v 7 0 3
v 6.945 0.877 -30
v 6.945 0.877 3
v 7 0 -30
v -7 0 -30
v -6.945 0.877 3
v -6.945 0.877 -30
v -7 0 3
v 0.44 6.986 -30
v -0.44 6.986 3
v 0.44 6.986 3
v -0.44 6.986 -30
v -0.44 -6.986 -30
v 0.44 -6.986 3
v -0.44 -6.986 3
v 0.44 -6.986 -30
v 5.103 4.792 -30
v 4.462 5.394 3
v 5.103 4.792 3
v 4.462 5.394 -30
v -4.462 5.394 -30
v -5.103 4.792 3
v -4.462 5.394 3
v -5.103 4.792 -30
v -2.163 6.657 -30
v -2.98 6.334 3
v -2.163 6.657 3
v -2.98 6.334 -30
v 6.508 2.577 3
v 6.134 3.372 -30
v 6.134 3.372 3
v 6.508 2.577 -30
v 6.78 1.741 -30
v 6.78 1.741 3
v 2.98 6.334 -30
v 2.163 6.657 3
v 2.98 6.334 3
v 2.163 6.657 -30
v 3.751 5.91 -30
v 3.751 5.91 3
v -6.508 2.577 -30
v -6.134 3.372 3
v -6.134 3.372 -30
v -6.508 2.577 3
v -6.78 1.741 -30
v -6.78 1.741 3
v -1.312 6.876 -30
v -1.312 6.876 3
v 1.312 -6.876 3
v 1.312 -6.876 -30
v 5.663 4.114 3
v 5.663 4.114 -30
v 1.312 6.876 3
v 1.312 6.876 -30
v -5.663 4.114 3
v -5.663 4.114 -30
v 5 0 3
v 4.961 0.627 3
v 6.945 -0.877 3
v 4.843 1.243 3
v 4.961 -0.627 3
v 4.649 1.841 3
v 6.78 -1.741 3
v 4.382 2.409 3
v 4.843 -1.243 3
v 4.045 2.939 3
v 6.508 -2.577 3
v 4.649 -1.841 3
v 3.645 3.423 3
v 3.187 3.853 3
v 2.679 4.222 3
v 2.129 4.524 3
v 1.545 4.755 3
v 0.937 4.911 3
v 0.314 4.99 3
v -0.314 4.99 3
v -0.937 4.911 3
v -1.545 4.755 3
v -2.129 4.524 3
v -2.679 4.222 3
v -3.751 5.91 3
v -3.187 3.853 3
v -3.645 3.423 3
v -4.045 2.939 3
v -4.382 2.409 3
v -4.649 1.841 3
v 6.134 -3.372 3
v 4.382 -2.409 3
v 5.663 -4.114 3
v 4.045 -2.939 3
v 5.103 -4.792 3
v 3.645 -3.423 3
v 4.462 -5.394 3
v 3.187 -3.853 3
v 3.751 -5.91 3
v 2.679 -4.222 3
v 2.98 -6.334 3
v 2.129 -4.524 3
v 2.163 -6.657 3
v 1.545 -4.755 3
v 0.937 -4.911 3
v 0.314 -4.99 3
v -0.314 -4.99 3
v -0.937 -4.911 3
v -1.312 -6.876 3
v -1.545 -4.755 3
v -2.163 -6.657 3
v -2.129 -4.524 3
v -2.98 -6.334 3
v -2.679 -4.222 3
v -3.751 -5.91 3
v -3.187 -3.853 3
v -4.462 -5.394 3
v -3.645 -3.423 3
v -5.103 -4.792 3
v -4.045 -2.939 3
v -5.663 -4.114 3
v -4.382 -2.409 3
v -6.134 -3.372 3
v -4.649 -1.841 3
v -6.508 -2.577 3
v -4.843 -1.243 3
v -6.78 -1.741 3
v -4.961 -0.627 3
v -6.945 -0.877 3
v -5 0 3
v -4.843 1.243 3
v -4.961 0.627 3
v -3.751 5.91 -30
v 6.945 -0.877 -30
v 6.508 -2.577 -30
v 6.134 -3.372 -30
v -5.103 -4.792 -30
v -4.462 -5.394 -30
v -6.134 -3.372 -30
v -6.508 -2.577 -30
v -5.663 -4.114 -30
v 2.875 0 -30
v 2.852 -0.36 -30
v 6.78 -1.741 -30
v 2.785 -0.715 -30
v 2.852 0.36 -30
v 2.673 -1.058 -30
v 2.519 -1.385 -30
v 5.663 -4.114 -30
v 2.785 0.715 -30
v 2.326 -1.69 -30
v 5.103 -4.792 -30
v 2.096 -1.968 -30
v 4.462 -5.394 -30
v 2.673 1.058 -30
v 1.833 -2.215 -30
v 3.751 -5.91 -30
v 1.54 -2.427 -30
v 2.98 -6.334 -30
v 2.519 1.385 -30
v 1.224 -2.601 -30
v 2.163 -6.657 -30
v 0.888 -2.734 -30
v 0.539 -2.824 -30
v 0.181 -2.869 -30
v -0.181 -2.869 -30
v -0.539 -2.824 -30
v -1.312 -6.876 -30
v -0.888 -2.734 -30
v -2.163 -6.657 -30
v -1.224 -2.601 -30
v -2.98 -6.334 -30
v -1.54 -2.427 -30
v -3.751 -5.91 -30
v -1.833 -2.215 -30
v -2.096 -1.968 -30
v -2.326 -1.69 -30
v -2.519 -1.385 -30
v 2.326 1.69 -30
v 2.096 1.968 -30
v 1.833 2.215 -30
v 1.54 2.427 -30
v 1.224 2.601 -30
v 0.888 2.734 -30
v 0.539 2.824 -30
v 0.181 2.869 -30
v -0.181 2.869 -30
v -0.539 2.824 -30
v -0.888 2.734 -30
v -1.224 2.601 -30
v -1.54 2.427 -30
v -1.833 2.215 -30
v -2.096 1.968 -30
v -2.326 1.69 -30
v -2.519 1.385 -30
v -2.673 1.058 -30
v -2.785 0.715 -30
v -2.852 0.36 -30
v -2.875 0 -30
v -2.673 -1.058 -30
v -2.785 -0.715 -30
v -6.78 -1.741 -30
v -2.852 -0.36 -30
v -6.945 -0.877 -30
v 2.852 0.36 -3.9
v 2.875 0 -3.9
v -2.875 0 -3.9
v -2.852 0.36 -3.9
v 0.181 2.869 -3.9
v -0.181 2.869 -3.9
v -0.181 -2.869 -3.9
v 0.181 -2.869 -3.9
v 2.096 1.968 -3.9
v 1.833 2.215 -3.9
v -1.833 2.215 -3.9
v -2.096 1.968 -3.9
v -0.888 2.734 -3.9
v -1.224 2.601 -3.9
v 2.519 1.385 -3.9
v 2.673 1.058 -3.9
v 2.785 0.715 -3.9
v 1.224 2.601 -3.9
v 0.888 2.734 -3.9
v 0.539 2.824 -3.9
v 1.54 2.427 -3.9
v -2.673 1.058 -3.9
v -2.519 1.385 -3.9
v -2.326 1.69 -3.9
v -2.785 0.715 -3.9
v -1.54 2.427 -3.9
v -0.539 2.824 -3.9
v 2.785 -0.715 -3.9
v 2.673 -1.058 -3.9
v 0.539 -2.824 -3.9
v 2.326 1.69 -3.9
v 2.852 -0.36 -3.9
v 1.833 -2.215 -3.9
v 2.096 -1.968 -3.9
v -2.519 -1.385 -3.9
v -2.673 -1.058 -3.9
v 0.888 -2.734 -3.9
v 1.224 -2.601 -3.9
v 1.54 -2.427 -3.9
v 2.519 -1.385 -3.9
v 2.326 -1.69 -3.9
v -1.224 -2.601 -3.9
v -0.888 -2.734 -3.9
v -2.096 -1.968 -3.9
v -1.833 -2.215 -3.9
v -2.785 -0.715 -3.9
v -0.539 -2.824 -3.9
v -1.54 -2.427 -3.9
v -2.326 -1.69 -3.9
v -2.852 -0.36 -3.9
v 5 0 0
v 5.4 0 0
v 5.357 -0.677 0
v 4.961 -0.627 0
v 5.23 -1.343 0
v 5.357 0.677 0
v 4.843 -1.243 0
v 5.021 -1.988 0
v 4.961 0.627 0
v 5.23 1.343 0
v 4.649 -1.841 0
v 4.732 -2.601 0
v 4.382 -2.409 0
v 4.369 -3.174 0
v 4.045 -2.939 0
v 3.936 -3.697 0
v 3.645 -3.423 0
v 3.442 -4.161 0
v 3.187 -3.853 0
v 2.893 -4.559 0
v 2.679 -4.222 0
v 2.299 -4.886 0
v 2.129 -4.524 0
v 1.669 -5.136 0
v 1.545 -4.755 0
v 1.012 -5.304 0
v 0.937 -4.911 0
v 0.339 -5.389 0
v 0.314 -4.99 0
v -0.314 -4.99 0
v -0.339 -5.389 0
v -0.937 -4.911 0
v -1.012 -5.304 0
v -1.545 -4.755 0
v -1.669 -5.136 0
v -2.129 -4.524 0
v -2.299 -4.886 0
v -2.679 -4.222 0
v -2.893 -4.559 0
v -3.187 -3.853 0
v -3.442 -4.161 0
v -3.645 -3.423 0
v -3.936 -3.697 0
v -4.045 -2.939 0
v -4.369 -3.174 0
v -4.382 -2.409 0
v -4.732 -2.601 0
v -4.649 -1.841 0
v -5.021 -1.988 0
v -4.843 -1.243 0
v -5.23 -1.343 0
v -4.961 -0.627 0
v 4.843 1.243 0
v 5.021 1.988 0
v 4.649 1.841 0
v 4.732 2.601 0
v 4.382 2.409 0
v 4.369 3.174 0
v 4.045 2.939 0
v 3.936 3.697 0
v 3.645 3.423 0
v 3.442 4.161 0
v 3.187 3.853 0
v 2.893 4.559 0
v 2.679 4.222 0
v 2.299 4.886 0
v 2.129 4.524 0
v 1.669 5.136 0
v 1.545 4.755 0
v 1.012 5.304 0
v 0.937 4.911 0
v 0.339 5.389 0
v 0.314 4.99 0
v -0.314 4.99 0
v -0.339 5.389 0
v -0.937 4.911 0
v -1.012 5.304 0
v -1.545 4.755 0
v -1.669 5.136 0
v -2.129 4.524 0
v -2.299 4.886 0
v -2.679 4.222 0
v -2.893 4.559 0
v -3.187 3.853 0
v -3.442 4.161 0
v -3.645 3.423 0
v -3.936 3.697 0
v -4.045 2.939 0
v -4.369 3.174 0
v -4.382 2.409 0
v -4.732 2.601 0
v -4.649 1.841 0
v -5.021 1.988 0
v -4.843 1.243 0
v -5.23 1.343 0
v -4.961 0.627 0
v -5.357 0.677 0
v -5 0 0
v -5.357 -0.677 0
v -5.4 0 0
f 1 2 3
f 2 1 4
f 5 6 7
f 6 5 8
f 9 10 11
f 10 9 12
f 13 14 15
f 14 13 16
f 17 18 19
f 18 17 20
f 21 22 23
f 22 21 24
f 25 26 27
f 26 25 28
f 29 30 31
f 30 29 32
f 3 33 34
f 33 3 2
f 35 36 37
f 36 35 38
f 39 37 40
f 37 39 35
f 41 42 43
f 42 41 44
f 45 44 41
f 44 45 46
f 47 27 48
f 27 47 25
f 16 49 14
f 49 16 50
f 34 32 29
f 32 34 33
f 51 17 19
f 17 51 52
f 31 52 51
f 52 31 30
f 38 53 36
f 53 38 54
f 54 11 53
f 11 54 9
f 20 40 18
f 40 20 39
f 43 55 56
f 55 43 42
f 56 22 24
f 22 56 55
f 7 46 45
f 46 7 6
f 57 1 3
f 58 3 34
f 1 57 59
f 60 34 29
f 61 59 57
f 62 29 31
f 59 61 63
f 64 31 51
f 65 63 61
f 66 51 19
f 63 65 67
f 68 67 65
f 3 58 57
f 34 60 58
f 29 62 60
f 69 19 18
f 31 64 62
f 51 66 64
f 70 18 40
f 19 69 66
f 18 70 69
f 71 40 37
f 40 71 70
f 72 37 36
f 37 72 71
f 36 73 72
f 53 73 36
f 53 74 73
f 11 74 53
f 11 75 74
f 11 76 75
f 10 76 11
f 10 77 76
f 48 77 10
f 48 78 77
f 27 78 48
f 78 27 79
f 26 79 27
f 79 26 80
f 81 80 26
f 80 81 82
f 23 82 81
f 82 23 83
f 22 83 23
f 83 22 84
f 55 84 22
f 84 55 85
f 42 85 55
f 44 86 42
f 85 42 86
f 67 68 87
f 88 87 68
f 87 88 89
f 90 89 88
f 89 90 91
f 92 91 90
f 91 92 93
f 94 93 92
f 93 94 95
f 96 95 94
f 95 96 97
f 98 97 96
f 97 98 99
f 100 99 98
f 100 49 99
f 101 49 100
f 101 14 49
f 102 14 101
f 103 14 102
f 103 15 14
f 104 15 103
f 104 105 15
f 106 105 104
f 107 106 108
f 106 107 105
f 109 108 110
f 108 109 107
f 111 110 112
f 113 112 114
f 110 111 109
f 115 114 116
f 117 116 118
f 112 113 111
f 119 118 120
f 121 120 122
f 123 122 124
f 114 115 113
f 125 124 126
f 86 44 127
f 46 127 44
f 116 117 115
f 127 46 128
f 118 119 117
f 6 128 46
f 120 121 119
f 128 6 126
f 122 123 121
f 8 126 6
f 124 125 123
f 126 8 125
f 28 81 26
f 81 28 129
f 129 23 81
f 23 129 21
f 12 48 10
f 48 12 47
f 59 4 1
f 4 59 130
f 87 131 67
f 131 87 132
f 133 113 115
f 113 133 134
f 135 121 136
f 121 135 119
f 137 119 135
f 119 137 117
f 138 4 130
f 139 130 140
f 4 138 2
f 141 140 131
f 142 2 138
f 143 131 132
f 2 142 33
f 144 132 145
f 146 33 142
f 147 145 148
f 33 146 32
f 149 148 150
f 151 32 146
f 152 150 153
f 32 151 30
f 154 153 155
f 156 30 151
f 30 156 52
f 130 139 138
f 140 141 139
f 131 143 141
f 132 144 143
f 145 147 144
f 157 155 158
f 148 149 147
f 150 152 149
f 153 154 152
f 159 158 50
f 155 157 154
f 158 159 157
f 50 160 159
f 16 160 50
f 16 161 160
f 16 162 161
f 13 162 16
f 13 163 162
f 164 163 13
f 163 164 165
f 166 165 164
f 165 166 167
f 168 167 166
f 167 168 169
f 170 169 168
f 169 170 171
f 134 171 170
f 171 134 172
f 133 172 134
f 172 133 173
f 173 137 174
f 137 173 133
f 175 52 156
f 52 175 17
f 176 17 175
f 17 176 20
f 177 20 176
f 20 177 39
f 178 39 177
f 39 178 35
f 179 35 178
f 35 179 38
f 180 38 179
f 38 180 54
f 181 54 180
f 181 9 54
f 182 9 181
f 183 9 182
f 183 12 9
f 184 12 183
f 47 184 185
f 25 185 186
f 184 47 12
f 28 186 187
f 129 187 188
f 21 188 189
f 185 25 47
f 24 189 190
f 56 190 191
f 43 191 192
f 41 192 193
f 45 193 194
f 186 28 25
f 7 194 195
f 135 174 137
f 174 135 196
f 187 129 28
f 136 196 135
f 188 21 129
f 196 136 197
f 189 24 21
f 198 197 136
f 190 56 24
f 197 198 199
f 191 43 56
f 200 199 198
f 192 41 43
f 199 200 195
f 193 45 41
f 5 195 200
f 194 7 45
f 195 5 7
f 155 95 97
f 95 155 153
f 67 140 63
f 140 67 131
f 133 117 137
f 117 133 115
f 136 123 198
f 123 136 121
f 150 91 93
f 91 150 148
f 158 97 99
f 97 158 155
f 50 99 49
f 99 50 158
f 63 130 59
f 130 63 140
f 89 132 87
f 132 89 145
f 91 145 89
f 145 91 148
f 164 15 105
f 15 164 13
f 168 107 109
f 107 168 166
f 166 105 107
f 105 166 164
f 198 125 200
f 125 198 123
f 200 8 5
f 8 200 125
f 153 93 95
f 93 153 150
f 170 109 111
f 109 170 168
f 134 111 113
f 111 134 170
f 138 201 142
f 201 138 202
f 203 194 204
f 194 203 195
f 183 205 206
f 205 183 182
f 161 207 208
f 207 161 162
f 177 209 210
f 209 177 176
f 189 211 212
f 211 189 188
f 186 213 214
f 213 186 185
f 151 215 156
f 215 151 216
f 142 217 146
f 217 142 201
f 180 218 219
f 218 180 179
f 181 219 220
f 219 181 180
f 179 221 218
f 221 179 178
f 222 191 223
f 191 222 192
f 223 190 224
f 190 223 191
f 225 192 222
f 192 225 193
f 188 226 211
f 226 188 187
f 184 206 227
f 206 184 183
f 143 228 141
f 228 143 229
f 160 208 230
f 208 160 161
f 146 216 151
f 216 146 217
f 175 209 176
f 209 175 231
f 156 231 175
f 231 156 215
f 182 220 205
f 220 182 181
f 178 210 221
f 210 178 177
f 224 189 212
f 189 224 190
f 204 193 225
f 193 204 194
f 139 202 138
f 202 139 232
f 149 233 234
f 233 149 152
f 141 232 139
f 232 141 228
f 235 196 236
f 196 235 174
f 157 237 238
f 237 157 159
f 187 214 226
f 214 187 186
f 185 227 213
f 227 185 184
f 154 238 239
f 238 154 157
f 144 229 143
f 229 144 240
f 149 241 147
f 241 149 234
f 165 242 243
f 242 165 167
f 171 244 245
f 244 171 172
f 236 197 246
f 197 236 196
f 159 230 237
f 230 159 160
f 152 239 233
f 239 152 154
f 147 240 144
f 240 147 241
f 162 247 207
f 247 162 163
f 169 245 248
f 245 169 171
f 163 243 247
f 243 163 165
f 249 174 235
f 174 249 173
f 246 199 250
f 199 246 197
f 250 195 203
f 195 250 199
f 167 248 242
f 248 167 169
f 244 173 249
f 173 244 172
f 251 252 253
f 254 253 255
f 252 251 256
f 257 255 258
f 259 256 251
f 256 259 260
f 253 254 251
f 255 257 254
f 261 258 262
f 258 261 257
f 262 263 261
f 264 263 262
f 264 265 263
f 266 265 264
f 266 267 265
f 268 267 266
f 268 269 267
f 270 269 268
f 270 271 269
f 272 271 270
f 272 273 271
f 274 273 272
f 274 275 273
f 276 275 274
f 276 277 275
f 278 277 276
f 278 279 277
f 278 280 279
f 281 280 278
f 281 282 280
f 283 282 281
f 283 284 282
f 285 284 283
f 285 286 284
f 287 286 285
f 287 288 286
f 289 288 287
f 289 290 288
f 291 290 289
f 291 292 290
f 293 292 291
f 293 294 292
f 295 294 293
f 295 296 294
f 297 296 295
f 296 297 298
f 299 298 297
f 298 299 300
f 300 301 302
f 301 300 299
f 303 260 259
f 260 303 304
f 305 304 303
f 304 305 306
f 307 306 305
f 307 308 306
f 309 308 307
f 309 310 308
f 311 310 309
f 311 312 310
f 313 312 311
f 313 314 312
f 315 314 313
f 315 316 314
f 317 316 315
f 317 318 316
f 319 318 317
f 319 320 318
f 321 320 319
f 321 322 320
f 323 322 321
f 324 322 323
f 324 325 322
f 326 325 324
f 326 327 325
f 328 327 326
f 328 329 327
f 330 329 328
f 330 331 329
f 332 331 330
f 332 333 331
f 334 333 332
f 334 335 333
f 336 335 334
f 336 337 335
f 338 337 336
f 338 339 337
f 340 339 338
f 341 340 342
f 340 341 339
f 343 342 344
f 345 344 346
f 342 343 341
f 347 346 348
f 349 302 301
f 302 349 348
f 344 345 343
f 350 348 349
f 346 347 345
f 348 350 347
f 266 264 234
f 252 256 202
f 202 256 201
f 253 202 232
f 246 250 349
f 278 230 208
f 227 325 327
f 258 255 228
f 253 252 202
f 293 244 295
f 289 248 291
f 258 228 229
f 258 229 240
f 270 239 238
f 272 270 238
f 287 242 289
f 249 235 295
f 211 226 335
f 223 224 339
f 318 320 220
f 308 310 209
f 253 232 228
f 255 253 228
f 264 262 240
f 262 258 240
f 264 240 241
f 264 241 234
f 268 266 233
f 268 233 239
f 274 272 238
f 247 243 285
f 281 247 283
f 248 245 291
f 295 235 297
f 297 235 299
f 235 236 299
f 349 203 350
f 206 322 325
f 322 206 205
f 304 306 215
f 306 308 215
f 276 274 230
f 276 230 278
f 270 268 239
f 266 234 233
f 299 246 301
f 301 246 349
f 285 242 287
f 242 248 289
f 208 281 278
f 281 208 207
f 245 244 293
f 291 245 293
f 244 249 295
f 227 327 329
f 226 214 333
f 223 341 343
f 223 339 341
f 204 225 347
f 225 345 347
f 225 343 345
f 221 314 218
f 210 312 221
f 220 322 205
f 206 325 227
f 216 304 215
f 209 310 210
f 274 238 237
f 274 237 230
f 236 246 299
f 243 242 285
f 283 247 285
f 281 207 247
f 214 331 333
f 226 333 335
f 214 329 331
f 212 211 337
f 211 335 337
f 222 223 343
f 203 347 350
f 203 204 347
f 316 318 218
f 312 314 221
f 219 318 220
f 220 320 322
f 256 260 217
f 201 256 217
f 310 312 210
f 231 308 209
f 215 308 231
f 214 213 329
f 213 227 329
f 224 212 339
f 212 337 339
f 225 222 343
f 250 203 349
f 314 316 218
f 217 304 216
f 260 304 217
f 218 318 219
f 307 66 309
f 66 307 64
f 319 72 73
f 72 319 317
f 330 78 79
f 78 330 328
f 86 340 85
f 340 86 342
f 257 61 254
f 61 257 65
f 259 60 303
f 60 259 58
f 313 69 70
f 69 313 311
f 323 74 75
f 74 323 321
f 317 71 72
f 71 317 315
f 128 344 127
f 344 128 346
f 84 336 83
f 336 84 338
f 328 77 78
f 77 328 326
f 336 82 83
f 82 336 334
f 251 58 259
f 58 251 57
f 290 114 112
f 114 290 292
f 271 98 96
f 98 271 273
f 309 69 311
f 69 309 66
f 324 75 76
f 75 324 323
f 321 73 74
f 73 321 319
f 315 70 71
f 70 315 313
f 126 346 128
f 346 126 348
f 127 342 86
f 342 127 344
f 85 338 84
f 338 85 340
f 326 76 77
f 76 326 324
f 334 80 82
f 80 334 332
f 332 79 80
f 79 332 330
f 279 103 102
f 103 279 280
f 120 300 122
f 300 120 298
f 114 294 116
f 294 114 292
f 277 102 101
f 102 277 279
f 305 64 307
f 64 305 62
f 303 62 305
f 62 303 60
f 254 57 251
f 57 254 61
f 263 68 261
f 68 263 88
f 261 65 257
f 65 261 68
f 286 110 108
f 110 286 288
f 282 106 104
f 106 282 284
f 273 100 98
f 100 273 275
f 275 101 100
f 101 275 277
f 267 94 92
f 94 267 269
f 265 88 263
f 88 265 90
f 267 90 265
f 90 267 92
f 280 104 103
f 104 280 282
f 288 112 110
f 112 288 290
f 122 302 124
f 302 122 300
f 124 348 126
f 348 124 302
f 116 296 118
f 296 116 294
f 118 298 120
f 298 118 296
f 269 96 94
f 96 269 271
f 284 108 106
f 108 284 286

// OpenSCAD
$fn = 50;

difference() {
	union() {
		translate(v = [0, 0, -30.0]) {
			cylinder(h = 33, r = 7.0);
		}
		#translate(v = [0, 0, -33.0]) {
			cylinder(h = 33, r = 2.875);
		}
	}
	union() {
		translate(v = [0, 0, 0]) {
			rotate(a = [0, 0, 0]) {
				difference() {
					union() {
						translate(v = [0, 0, -33.0]) {
							cylinder(h = 33, r = 2.6);
						}
						translate(v = [0, 0, -3.9]) {
							cylinder(h = 3.9, r1 = 2.875, r2 = 5.4);
						}
						translate(v = [0, 0, -33.0]) {
							cylinder(h = 33, r = 2.875);
						}
						translate(v = [0, 0, -33.0]) {
							cylinder(h = 33, r = 2.6);
						}
					}
					union();
				}
			}
		}
		#cylinder(h = 3, r = 5.0);
	}
}
